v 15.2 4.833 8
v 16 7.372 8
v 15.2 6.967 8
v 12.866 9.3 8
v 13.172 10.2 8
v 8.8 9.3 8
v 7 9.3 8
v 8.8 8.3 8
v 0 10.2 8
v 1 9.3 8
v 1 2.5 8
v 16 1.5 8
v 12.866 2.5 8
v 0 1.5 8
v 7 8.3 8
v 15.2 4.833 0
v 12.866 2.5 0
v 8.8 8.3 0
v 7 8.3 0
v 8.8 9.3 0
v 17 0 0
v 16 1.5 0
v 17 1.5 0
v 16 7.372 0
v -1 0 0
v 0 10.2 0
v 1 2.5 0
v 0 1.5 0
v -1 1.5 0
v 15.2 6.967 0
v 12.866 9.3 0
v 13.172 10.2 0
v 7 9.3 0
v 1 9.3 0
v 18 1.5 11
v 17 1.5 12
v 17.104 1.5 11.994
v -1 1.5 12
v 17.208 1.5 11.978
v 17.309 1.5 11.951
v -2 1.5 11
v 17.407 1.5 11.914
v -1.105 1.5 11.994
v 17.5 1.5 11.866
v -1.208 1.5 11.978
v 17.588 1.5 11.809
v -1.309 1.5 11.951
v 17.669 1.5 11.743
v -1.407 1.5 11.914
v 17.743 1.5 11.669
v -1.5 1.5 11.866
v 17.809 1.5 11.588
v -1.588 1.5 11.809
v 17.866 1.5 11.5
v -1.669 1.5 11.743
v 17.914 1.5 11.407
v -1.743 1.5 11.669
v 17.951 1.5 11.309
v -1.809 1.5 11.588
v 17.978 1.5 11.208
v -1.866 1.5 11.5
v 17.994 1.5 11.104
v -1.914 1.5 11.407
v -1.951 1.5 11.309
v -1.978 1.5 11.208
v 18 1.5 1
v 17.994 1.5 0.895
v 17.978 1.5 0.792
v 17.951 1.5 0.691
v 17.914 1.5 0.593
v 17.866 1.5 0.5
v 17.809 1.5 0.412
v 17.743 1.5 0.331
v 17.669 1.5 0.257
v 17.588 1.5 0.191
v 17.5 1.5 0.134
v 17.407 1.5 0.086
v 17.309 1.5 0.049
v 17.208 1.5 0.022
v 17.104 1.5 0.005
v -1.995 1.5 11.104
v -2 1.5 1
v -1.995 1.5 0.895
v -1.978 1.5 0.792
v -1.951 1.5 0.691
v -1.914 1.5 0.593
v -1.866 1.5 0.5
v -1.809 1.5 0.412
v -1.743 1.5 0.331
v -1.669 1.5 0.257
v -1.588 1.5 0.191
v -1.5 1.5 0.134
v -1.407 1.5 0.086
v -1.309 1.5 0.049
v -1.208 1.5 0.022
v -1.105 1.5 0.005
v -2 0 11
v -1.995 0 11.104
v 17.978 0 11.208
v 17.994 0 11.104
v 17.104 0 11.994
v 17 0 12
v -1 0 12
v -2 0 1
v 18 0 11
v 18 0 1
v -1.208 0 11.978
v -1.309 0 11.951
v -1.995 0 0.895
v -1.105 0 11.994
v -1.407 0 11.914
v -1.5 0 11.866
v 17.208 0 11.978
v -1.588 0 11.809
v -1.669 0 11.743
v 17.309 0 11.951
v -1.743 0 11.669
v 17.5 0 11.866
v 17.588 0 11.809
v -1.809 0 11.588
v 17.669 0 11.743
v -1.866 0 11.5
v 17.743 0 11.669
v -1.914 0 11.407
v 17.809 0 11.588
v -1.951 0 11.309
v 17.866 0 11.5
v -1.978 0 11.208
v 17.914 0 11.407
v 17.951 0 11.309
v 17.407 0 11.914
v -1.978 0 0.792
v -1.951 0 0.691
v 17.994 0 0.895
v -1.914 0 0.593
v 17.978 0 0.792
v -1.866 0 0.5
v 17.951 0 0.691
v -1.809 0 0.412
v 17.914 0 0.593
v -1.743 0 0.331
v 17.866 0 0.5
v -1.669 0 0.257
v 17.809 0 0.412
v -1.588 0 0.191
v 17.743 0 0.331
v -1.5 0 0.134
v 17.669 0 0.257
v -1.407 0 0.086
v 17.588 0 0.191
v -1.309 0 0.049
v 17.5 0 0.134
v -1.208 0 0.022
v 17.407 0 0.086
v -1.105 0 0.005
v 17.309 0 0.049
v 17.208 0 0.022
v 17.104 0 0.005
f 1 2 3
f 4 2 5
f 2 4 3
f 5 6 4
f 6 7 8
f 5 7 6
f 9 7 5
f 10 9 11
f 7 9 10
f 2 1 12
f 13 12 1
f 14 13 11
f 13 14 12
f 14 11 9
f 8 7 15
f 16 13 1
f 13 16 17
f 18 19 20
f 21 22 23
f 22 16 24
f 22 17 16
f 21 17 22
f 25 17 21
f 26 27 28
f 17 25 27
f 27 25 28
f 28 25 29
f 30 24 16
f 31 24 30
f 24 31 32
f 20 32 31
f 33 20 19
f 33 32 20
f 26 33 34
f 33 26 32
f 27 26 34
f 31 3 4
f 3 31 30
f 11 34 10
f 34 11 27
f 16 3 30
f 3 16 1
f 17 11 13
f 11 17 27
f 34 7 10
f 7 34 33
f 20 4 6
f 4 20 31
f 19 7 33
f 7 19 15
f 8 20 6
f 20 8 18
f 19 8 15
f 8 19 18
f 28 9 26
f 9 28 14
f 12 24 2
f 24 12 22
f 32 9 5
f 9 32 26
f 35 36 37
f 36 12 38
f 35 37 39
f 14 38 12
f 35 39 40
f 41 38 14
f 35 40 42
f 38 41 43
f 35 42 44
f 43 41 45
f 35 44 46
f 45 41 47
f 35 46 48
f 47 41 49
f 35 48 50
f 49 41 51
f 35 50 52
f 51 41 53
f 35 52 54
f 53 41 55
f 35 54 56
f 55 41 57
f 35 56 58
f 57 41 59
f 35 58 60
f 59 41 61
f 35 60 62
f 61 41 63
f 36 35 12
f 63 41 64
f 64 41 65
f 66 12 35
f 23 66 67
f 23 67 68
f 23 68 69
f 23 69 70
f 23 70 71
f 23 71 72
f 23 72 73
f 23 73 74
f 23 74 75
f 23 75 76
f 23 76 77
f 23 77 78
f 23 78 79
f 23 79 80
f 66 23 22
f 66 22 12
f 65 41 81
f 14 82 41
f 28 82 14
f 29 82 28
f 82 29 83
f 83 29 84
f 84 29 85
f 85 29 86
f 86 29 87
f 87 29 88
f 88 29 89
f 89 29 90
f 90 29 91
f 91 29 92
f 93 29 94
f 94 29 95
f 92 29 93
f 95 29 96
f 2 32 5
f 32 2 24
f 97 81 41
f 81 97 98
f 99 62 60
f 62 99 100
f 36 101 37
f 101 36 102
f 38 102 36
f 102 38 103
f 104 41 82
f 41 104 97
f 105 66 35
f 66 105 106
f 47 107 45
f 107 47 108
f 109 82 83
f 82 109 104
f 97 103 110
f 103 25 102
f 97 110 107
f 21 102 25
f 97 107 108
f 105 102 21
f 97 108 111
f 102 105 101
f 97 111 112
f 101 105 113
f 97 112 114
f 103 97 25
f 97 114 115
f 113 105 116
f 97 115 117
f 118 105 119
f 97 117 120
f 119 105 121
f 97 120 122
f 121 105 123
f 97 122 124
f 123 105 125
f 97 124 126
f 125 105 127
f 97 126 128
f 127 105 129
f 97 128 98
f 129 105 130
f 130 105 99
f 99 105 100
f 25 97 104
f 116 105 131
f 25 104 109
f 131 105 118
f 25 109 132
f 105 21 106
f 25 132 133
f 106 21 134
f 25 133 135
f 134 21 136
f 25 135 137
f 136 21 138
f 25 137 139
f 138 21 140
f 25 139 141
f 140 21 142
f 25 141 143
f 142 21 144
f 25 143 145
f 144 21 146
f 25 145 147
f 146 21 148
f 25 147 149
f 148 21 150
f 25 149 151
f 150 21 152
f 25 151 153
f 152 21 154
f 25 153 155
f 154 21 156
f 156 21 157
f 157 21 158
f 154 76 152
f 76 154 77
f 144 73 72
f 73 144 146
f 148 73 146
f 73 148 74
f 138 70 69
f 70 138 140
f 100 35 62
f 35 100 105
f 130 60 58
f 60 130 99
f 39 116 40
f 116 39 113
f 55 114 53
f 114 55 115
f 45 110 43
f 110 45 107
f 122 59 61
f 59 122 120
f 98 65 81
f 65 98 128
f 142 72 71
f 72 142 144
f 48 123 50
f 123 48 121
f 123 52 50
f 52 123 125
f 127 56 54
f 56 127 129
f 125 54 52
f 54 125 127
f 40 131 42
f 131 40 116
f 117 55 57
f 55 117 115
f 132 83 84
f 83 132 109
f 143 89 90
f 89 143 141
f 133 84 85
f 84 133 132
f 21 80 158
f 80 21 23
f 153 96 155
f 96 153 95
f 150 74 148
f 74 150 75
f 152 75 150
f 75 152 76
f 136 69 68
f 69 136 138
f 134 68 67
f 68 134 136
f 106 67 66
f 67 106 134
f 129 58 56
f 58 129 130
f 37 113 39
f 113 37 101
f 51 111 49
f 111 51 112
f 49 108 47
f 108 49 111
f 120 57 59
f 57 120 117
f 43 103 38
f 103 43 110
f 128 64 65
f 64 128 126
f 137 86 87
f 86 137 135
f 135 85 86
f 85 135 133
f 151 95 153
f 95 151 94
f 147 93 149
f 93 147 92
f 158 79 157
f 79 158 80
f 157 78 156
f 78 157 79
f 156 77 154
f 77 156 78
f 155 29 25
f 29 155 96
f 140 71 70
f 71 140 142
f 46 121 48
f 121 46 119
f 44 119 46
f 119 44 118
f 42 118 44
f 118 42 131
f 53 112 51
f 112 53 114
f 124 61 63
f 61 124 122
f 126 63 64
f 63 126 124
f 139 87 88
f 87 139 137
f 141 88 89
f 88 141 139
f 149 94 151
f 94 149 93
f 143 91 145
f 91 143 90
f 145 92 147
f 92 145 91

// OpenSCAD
$fn=60;

XT60_holder_mount();

module XT60()
{
	//original measurements
	width=14; height=8; depth=6.5; chamfer=3.5; cut=[2,1];
	//printabĺe
	width=14.2; height=8; depth=6.8; chamfer=3.3; cut=[1.8,1];

	difference()
	{
		cube([width,depth,height]);
		translate([width+depth/2-chamfer/sqrt(2),0])
		for (i = [-1:2:1])
		{
			translate([0,i*depth/2,0])
				rotate(45,[0,0,1])
					cube([depth/sqrt(2),depth/sqrt(2),height]);
		}

		translate([5.9+1-cut[0]/2,depth-cut[1]])
			cube([cut[0],cut[1],height]);
	}
}

module XT60_holder()
{
	width=16; height=8; depth=8.7; chamfer=4;
	difference()
	{
		cube([width,depth,height]);
		translate([1,1,0])
		XT60();

		translate([width+depth/2-chamfer/sqrt(2),0])
		translate([0,depth/2,0])
			rotate(45,[0,0,1])
				cube([depth/sqrt(2),depth/sqrt(2),height]);
	}
}

module XT60_holder_mount()
{
	translate([0,1.5])
		XT60_holder();

	translate([-2+1,0,+1])
	minkowski()
	{
		cube([20-2,1.5,12-2]);

		rotate(90,[1,0,0])
			cylinder(pow(10,-100),r=1);
	}

	size=3;
	translate([3.5+size,1.5+8.5,4])
		rotate(180,[0,0,1])
			rotate(90,[1,0,0])
				linear_extrude(0)
					text("XT60", size, halign="center", valign="center");
}
